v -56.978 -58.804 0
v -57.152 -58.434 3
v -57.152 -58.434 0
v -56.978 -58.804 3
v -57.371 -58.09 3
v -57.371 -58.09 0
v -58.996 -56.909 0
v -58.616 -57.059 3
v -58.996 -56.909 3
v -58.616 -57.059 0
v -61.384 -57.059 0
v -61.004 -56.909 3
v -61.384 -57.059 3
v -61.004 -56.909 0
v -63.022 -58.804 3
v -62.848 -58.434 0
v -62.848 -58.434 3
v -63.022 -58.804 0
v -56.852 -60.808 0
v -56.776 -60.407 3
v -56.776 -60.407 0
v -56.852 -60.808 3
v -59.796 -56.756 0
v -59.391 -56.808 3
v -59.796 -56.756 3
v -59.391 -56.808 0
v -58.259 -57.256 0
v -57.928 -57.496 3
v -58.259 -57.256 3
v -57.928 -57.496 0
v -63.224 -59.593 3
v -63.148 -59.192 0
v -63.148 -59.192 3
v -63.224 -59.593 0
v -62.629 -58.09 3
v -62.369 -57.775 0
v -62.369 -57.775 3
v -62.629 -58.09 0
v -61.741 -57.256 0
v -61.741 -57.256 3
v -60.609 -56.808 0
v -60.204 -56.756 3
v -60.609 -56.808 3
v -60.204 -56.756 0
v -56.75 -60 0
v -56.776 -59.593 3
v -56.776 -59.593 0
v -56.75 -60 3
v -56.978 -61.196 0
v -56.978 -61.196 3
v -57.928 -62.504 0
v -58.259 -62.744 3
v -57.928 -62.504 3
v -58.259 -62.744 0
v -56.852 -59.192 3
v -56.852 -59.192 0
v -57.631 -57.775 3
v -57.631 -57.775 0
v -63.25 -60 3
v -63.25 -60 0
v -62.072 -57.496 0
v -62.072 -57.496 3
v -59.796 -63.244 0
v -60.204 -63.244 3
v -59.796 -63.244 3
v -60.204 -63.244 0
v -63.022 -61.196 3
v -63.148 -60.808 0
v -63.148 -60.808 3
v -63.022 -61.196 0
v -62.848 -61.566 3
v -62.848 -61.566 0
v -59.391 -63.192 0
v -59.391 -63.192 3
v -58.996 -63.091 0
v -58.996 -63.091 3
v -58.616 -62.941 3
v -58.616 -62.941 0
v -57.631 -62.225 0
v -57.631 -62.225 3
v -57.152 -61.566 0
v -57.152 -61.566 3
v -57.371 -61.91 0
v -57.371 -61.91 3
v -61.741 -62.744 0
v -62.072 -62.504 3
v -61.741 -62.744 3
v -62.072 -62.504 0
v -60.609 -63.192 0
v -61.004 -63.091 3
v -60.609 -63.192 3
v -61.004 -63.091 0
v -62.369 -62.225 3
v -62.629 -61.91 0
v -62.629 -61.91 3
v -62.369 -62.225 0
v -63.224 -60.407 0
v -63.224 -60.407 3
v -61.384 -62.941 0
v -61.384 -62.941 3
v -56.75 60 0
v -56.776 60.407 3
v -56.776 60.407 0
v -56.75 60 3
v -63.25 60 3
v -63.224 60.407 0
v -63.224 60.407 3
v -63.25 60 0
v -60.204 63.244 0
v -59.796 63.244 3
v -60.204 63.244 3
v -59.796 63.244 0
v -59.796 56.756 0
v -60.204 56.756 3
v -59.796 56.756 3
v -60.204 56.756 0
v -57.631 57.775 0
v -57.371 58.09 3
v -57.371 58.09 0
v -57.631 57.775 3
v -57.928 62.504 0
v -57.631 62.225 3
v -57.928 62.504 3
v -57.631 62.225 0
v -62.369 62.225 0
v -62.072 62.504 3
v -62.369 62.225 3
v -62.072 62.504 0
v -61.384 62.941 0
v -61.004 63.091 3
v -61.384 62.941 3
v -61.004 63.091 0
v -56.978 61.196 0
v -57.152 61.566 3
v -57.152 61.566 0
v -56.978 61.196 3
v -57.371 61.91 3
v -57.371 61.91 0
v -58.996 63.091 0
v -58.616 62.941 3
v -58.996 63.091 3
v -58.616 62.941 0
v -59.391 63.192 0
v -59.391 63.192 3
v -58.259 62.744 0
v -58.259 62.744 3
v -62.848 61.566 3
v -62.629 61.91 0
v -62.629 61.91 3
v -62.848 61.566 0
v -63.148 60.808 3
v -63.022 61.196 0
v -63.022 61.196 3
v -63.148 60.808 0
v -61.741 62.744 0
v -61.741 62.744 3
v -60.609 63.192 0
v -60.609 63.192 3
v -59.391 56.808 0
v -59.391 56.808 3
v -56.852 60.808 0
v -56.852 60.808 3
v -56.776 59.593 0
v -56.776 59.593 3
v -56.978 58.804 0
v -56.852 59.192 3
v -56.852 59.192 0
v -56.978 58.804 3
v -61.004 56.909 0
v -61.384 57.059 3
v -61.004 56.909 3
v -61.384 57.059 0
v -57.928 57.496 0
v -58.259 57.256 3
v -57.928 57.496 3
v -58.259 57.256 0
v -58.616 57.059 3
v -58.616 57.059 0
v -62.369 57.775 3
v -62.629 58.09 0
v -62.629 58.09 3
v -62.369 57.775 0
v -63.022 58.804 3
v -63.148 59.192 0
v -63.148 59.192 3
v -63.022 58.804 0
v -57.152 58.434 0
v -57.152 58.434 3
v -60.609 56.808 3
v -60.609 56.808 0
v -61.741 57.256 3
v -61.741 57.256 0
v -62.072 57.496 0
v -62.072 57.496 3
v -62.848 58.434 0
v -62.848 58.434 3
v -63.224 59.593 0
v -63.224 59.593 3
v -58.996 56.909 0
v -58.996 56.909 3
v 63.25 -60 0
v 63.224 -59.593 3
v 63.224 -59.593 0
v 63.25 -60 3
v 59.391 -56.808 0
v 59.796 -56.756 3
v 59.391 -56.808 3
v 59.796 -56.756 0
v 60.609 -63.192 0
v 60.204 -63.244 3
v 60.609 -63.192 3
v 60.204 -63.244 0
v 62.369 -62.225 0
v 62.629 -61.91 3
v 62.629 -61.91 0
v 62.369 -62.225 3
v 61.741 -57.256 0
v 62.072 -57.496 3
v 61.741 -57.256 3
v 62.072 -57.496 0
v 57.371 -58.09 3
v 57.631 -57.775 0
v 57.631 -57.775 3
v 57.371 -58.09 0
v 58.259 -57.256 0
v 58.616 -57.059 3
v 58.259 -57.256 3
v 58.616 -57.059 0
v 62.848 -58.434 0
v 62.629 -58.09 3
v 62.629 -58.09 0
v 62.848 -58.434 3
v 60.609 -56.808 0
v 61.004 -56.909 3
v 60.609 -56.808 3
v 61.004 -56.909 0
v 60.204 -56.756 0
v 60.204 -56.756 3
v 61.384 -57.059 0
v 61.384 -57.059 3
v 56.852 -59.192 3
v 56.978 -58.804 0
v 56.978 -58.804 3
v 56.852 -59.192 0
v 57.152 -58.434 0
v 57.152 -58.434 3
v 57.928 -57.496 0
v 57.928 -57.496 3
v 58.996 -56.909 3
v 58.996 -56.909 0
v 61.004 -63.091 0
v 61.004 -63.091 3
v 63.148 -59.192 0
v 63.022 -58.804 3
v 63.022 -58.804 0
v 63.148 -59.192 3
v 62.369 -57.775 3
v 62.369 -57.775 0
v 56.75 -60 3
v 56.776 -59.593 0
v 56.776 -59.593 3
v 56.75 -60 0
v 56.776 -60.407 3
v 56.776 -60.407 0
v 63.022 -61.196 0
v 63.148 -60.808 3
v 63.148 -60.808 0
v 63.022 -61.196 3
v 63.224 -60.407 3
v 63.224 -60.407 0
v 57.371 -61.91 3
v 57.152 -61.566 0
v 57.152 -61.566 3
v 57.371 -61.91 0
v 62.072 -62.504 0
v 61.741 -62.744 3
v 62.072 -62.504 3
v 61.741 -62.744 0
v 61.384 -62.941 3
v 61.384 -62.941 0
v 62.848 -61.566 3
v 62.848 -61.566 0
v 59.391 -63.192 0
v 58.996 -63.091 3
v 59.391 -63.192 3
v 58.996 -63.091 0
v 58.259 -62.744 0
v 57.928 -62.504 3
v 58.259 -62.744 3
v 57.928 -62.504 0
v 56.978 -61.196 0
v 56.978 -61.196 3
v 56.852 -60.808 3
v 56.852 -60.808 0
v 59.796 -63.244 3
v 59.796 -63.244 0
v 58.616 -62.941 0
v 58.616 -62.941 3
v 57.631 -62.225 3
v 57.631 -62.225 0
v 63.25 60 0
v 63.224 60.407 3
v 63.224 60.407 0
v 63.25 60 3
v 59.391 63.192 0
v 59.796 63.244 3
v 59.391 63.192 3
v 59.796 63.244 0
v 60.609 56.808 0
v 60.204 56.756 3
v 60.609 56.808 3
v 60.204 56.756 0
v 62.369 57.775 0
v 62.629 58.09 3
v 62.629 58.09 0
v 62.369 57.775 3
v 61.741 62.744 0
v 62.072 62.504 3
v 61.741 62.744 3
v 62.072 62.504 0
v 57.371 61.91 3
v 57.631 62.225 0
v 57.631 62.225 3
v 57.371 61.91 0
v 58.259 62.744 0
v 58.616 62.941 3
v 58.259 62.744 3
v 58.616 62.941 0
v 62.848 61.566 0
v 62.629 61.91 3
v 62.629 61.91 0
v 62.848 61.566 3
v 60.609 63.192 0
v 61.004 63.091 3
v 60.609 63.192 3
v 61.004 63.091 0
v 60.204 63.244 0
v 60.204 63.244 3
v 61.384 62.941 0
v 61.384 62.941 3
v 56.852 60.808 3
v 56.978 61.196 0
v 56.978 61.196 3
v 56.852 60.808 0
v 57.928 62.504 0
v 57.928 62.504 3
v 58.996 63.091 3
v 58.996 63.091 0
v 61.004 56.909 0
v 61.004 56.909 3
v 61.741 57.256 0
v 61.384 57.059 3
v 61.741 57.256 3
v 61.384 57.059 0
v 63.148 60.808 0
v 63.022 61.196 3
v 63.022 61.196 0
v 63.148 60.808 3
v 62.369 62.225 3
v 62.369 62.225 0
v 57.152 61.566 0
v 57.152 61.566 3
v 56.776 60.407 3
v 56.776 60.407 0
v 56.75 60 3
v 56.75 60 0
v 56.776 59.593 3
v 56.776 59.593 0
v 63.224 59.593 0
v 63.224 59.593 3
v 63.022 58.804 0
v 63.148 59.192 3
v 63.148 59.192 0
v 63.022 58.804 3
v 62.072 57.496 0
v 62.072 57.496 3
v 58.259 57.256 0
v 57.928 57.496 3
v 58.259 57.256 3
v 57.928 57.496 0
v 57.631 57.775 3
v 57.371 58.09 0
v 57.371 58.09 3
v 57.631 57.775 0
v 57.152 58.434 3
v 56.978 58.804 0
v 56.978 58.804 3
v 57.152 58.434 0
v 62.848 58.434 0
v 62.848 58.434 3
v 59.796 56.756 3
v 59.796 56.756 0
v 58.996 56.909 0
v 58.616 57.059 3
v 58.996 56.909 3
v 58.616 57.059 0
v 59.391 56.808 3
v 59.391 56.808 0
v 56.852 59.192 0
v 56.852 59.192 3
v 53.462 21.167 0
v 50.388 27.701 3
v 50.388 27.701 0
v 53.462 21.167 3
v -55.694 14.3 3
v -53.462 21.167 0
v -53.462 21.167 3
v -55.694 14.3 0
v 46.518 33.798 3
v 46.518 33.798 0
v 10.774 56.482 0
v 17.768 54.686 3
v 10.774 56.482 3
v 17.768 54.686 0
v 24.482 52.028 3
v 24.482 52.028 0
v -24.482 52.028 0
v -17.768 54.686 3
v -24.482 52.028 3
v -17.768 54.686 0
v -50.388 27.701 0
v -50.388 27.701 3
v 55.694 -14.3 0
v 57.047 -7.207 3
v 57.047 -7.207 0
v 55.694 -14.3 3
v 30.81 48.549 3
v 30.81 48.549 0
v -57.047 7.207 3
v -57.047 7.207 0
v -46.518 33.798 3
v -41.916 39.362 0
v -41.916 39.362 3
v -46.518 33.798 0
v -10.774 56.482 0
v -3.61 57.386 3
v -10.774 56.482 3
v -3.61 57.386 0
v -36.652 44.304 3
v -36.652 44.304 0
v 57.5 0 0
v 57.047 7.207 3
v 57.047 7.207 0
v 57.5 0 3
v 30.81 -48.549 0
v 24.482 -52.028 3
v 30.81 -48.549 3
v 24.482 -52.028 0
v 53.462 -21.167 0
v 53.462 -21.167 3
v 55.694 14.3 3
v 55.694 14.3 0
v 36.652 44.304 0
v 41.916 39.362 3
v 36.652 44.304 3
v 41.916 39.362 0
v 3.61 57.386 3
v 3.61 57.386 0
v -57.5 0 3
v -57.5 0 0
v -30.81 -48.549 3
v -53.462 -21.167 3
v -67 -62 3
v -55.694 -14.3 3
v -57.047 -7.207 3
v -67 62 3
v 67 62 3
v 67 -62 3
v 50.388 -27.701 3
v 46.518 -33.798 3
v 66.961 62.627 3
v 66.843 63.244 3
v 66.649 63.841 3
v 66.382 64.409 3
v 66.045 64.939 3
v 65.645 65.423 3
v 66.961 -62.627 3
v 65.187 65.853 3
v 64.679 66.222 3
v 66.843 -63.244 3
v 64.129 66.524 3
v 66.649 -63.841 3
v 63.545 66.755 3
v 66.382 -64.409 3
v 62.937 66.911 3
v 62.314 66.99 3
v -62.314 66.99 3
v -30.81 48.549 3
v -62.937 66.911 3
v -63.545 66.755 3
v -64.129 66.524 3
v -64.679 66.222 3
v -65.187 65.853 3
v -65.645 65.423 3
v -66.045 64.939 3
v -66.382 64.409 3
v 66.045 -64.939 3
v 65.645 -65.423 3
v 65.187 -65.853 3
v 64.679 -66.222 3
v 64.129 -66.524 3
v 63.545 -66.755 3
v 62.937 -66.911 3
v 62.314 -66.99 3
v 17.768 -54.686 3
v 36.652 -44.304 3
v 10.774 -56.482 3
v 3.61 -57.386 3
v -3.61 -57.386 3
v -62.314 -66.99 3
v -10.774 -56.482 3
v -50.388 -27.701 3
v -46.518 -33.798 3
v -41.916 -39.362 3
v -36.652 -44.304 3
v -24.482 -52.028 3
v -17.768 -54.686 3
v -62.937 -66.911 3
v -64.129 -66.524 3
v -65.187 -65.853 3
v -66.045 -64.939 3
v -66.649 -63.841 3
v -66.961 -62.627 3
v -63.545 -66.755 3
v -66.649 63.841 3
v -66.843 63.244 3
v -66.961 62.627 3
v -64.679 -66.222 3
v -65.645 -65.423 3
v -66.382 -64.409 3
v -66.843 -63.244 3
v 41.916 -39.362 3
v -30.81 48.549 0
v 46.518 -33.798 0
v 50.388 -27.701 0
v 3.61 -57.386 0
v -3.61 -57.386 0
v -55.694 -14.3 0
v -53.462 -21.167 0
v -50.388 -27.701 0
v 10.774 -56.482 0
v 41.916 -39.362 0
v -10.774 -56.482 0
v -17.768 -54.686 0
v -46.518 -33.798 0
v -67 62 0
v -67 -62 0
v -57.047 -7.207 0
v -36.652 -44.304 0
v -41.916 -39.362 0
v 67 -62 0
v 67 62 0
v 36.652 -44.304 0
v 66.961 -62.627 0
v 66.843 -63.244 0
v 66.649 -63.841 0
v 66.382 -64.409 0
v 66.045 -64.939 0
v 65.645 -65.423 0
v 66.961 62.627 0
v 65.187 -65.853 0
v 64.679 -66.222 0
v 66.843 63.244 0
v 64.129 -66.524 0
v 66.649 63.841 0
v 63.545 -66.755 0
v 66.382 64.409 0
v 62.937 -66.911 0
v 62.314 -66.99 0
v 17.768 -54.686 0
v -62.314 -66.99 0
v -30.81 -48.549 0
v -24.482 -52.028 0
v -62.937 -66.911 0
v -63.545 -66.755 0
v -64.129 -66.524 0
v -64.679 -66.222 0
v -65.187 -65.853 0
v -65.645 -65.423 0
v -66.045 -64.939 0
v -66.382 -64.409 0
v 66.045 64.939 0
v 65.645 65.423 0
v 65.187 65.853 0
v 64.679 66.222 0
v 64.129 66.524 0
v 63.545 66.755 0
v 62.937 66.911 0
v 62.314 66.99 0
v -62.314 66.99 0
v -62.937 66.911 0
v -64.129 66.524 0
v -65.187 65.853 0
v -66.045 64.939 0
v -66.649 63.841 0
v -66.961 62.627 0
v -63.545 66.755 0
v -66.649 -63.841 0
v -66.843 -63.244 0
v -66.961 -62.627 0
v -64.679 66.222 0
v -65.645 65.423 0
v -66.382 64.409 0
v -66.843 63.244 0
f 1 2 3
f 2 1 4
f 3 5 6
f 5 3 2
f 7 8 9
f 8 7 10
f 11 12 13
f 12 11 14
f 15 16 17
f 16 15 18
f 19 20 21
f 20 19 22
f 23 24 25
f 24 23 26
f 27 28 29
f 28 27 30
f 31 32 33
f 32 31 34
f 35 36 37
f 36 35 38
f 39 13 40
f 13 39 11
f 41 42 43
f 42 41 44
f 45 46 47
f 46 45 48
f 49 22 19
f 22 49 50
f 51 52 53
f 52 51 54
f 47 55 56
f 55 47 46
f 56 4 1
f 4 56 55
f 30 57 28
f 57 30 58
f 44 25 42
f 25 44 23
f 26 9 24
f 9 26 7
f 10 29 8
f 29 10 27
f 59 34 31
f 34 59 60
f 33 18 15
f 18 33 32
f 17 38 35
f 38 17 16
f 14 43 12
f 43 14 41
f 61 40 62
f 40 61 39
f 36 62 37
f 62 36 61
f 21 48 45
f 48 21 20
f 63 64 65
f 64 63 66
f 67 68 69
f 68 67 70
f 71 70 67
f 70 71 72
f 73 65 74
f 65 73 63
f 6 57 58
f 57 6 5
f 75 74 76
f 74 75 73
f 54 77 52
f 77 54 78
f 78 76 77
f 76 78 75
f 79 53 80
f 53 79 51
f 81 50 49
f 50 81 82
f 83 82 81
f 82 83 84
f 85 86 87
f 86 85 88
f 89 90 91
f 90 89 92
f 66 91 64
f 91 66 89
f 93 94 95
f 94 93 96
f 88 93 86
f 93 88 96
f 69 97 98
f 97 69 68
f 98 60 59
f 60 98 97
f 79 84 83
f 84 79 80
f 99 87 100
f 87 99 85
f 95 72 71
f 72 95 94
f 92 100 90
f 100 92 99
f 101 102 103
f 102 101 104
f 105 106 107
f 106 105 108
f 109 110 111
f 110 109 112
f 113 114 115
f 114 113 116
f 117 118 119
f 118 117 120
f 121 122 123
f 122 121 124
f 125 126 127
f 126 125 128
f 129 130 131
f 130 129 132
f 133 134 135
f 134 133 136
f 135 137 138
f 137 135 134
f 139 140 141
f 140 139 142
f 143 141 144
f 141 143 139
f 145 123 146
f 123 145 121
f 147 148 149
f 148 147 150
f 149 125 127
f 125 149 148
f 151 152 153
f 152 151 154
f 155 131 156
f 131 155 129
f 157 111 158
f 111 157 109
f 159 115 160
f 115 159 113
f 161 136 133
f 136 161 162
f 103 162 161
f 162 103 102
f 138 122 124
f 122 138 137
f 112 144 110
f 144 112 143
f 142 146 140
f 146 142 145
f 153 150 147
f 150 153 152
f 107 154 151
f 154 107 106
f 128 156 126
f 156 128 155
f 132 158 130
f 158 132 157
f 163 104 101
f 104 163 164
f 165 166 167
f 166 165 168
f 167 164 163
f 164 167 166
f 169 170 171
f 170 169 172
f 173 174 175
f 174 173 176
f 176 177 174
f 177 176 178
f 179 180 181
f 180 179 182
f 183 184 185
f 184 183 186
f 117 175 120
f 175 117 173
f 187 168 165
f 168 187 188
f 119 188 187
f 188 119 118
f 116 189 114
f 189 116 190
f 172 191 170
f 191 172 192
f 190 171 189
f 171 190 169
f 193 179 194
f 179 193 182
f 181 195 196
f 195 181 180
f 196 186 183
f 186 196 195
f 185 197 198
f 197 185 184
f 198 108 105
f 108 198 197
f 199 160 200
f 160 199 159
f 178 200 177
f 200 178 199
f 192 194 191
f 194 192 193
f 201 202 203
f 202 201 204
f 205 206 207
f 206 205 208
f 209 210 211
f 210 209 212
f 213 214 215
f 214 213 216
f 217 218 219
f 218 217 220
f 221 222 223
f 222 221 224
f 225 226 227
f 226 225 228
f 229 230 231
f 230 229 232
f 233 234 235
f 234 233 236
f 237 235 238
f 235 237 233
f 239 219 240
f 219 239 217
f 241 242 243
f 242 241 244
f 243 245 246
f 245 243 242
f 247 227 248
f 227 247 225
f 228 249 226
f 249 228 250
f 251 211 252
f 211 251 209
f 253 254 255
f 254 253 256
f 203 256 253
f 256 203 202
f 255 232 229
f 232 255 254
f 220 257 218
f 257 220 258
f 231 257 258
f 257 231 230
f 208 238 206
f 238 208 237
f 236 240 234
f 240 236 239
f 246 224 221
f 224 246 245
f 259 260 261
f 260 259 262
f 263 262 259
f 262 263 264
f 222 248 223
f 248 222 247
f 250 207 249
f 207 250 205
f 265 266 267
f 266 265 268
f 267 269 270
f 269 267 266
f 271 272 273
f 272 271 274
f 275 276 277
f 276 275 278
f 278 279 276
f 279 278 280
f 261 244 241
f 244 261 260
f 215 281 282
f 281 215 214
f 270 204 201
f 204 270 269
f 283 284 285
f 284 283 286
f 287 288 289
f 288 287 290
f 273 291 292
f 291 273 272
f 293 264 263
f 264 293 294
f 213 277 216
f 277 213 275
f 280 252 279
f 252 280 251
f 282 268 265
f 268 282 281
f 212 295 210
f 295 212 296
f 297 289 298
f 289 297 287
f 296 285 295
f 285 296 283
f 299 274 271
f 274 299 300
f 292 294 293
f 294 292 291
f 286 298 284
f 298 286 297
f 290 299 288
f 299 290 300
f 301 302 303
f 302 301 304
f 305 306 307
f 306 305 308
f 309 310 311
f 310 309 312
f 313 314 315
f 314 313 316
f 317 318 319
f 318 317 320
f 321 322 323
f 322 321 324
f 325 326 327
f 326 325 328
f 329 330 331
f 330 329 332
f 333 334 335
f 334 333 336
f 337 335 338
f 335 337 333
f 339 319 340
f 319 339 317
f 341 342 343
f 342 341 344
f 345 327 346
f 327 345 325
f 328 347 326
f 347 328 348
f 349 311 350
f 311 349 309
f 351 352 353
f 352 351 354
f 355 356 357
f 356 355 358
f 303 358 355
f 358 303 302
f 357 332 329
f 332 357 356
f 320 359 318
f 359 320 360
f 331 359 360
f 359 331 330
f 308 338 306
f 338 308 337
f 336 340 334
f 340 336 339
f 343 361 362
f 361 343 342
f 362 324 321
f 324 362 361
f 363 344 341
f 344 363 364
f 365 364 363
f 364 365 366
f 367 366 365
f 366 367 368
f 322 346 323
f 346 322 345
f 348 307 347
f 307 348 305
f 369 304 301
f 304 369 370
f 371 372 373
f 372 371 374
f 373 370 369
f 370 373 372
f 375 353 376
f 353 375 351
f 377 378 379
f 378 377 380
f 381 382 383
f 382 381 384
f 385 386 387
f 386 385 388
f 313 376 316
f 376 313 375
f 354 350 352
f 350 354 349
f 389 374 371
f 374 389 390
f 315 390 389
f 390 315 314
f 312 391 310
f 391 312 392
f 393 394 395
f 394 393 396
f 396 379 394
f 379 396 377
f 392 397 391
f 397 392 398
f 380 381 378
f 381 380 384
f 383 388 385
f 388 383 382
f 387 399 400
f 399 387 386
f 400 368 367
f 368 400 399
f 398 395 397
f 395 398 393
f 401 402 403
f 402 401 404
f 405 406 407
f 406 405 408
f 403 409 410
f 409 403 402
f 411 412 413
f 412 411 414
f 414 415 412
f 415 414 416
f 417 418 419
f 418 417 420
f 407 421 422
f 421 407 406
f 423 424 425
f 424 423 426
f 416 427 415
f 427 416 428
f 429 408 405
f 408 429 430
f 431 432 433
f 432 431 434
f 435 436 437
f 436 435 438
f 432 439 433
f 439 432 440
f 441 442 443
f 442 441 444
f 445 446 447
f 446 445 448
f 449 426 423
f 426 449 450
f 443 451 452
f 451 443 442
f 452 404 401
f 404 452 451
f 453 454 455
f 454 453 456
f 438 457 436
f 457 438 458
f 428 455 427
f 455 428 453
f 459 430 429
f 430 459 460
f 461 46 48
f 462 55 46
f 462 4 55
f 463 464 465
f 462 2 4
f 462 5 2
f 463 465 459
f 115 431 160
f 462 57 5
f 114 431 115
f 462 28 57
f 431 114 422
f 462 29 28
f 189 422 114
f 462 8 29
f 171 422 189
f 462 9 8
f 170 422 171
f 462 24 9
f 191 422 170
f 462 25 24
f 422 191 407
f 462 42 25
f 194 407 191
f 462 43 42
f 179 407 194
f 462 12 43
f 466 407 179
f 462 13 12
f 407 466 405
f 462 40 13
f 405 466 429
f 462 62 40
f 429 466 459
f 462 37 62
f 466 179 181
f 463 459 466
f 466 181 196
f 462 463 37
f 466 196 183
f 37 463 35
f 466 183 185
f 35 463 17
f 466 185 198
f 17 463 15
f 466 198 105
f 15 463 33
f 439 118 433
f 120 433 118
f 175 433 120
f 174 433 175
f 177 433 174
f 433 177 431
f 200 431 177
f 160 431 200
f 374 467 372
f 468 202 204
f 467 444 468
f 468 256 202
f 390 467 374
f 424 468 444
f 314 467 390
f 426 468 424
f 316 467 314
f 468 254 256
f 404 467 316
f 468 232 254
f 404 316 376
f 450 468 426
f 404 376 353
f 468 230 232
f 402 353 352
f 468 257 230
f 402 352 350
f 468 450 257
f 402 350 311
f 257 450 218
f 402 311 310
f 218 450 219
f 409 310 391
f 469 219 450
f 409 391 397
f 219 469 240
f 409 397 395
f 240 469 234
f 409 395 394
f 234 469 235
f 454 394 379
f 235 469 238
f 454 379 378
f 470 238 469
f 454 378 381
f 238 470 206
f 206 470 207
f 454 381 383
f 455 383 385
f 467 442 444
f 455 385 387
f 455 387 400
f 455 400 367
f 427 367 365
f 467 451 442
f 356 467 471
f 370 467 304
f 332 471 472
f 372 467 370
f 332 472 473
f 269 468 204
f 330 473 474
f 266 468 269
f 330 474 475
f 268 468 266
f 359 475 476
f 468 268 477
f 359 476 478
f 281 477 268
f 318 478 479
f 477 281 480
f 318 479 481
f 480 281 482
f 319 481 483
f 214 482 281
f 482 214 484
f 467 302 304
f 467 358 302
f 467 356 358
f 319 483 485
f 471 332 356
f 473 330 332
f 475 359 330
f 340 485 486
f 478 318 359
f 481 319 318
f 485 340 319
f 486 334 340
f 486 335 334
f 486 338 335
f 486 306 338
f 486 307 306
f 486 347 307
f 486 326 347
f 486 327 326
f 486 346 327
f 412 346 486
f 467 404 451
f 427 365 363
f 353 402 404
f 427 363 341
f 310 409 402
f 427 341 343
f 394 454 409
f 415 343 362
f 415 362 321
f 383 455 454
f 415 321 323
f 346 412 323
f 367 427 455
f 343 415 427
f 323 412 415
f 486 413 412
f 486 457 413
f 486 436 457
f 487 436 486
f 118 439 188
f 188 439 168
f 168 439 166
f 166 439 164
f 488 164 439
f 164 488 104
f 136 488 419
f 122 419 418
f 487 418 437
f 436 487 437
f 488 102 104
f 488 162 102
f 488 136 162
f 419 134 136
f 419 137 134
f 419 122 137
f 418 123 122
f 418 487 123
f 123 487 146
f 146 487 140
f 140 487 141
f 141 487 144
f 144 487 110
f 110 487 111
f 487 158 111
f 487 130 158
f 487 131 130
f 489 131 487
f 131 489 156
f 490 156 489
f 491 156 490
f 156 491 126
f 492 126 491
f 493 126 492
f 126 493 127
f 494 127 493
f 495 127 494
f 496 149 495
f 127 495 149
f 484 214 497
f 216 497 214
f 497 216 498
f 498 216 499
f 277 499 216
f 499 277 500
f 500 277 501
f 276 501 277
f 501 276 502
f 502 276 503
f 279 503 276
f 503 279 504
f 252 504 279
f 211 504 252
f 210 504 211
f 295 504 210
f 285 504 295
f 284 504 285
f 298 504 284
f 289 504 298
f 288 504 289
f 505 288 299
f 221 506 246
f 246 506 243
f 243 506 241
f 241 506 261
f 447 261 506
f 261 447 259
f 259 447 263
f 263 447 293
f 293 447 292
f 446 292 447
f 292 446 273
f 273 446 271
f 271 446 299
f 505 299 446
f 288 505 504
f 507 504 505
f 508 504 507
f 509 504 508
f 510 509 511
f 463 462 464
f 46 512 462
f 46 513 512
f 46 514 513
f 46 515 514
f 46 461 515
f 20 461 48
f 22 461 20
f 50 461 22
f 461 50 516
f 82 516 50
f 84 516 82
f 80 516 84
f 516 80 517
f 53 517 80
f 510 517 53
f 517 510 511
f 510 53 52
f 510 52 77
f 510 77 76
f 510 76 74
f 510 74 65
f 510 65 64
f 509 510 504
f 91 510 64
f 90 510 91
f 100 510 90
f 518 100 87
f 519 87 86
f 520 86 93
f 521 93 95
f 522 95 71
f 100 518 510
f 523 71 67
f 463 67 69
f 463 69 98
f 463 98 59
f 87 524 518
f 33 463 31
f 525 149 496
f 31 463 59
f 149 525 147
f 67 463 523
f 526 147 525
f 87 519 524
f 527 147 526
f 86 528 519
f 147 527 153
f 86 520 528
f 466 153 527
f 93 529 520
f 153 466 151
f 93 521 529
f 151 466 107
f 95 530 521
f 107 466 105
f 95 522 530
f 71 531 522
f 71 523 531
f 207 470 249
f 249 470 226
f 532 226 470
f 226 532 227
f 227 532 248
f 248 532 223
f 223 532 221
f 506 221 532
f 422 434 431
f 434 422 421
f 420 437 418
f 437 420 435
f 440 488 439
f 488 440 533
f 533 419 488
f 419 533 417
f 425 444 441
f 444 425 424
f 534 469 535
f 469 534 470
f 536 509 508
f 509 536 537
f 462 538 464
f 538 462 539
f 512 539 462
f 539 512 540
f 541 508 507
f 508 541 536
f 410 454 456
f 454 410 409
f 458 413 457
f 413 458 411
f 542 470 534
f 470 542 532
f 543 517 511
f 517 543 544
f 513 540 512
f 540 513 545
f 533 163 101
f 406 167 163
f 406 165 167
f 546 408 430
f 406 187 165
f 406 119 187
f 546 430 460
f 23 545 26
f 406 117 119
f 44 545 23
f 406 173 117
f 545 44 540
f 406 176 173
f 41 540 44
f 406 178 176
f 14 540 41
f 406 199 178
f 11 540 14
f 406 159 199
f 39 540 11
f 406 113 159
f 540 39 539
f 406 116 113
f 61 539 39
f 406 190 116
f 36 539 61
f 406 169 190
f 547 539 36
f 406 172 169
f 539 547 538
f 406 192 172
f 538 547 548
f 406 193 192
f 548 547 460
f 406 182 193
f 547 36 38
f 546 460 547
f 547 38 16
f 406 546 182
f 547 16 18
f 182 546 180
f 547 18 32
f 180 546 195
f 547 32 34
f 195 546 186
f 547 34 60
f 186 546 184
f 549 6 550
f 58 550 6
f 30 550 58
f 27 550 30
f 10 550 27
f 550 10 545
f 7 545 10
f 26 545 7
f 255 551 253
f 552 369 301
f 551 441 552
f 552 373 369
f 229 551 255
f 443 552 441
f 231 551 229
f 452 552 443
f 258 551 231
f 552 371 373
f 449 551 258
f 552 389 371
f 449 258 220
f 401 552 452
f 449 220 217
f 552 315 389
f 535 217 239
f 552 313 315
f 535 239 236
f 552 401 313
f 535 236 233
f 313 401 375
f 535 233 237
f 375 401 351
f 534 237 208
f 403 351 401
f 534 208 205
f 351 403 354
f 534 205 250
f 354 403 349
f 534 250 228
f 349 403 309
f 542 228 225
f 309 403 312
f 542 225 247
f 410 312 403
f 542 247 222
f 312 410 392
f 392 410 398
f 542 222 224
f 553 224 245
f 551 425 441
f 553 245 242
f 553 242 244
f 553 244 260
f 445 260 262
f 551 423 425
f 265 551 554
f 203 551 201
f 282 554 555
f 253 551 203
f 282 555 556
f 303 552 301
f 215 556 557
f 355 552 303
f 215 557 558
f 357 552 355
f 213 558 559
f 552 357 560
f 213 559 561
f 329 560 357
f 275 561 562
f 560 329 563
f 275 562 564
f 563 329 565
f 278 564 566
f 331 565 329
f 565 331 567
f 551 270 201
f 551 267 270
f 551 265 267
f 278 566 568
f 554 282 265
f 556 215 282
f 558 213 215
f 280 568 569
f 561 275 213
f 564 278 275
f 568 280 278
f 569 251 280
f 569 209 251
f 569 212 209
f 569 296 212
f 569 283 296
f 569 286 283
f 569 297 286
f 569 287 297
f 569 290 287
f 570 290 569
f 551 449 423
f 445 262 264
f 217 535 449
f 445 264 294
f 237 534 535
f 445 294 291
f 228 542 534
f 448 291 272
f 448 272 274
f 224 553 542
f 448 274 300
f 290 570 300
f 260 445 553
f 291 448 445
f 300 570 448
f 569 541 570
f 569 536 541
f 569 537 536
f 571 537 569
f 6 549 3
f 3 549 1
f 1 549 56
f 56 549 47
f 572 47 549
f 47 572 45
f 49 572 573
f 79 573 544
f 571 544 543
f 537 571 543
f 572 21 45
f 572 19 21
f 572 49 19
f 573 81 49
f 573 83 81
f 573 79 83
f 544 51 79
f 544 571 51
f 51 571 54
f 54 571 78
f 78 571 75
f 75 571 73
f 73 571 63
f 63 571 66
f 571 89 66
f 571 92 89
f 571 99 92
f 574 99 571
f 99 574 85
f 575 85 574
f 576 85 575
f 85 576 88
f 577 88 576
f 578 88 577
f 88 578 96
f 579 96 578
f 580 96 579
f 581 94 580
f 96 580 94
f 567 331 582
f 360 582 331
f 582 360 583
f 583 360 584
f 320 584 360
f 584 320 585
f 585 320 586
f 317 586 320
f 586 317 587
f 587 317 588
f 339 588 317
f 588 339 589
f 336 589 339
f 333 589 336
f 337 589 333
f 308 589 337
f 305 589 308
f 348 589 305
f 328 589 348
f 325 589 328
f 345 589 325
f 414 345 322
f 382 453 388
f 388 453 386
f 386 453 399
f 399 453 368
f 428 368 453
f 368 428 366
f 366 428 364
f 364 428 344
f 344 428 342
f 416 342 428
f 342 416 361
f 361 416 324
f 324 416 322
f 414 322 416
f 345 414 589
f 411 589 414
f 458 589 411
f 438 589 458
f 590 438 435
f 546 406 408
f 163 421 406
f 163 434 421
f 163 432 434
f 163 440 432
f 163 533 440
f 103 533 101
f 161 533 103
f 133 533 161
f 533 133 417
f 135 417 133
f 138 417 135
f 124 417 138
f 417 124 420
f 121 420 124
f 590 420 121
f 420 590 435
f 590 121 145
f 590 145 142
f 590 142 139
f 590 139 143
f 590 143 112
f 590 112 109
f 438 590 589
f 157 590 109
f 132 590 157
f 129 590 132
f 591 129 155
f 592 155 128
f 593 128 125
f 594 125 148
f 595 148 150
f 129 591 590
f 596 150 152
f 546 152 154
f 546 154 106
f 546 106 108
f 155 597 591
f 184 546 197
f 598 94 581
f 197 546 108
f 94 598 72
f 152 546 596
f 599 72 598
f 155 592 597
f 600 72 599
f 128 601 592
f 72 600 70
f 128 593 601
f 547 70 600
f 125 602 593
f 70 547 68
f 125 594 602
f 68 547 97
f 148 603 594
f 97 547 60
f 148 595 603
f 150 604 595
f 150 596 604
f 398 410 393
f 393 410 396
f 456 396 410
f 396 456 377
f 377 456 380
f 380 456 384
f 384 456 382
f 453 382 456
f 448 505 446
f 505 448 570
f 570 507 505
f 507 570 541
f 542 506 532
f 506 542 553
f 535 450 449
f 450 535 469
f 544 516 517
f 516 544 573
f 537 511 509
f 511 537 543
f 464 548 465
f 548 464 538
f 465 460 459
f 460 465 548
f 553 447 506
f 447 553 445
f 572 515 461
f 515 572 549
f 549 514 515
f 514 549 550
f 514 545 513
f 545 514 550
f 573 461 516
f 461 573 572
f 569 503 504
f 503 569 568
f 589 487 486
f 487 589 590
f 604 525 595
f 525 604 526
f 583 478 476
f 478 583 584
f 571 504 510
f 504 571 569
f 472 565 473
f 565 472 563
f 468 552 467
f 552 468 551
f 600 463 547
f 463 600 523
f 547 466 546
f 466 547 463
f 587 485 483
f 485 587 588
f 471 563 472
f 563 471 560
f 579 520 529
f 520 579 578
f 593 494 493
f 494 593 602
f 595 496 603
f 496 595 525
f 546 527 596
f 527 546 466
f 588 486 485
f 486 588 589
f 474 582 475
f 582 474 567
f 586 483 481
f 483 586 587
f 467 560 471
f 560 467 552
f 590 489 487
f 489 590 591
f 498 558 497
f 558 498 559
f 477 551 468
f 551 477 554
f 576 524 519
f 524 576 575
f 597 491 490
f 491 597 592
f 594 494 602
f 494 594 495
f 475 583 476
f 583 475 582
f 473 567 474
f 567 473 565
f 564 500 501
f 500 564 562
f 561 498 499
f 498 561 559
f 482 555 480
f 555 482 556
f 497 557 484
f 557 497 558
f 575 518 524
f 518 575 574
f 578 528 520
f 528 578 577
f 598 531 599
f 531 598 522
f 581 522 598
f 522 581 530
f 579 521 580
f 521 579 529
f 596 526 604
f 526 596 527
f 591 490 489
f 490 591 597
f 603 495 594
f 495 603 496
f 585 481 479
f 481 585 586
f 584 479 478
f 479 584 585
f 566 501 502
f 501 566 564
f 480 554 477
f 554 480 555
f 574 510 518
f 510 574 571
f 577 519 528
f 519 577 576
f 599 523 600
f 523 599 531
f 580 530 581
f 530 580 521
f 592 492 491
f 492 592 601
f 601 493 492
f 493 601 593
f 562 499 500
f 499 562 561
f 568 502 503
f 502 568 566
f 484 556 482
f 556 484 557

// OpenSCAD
$fn = 50;


difference() {
	union() {
		hull() {
			translate(v = [-62.0000000000, 62.0000000000, 0]) {
				cylinder(h = 3, r = 5);
			}
			translate(v = [62.0000000000, 62.0000000000, 0]) {
				cylinder(h = 3, r = 5);
			}
			translate(v = [-62.0000000000, -62.0000000000, 0]) {
				cylinder(h = 3, r = 5);
			}
			translate(v = [62.0000000000, -62.0000000000, 0]) {
				cylinder(h = 3, r = 5);
			}
		}
	}
	union() {
		#translate(v = [-60.0000000000, -60.0000000000, -100.0000000000]) {
			cylinder(h = 200, r = 3.2500000000);
		}
		#translate(v = [-60.0000000000, 60.0000000000, -100.0000000000]) {
			cylinder(h = 200, r = 3.2500000000);
		}
		#translate(v = [60.0000000000, -60.0000000000, -100.0000000000]) {
			cylinder(h = 200, r = 3.2500000000);
		}
		#translate(v = [60.0000000000, 60.0000000000, -100.0000000000]) {
			cylinder(h = 200, r = 3.2500000000);
		}
		#cylinder(h = 3, r = 57.5000000000);
	}
}
